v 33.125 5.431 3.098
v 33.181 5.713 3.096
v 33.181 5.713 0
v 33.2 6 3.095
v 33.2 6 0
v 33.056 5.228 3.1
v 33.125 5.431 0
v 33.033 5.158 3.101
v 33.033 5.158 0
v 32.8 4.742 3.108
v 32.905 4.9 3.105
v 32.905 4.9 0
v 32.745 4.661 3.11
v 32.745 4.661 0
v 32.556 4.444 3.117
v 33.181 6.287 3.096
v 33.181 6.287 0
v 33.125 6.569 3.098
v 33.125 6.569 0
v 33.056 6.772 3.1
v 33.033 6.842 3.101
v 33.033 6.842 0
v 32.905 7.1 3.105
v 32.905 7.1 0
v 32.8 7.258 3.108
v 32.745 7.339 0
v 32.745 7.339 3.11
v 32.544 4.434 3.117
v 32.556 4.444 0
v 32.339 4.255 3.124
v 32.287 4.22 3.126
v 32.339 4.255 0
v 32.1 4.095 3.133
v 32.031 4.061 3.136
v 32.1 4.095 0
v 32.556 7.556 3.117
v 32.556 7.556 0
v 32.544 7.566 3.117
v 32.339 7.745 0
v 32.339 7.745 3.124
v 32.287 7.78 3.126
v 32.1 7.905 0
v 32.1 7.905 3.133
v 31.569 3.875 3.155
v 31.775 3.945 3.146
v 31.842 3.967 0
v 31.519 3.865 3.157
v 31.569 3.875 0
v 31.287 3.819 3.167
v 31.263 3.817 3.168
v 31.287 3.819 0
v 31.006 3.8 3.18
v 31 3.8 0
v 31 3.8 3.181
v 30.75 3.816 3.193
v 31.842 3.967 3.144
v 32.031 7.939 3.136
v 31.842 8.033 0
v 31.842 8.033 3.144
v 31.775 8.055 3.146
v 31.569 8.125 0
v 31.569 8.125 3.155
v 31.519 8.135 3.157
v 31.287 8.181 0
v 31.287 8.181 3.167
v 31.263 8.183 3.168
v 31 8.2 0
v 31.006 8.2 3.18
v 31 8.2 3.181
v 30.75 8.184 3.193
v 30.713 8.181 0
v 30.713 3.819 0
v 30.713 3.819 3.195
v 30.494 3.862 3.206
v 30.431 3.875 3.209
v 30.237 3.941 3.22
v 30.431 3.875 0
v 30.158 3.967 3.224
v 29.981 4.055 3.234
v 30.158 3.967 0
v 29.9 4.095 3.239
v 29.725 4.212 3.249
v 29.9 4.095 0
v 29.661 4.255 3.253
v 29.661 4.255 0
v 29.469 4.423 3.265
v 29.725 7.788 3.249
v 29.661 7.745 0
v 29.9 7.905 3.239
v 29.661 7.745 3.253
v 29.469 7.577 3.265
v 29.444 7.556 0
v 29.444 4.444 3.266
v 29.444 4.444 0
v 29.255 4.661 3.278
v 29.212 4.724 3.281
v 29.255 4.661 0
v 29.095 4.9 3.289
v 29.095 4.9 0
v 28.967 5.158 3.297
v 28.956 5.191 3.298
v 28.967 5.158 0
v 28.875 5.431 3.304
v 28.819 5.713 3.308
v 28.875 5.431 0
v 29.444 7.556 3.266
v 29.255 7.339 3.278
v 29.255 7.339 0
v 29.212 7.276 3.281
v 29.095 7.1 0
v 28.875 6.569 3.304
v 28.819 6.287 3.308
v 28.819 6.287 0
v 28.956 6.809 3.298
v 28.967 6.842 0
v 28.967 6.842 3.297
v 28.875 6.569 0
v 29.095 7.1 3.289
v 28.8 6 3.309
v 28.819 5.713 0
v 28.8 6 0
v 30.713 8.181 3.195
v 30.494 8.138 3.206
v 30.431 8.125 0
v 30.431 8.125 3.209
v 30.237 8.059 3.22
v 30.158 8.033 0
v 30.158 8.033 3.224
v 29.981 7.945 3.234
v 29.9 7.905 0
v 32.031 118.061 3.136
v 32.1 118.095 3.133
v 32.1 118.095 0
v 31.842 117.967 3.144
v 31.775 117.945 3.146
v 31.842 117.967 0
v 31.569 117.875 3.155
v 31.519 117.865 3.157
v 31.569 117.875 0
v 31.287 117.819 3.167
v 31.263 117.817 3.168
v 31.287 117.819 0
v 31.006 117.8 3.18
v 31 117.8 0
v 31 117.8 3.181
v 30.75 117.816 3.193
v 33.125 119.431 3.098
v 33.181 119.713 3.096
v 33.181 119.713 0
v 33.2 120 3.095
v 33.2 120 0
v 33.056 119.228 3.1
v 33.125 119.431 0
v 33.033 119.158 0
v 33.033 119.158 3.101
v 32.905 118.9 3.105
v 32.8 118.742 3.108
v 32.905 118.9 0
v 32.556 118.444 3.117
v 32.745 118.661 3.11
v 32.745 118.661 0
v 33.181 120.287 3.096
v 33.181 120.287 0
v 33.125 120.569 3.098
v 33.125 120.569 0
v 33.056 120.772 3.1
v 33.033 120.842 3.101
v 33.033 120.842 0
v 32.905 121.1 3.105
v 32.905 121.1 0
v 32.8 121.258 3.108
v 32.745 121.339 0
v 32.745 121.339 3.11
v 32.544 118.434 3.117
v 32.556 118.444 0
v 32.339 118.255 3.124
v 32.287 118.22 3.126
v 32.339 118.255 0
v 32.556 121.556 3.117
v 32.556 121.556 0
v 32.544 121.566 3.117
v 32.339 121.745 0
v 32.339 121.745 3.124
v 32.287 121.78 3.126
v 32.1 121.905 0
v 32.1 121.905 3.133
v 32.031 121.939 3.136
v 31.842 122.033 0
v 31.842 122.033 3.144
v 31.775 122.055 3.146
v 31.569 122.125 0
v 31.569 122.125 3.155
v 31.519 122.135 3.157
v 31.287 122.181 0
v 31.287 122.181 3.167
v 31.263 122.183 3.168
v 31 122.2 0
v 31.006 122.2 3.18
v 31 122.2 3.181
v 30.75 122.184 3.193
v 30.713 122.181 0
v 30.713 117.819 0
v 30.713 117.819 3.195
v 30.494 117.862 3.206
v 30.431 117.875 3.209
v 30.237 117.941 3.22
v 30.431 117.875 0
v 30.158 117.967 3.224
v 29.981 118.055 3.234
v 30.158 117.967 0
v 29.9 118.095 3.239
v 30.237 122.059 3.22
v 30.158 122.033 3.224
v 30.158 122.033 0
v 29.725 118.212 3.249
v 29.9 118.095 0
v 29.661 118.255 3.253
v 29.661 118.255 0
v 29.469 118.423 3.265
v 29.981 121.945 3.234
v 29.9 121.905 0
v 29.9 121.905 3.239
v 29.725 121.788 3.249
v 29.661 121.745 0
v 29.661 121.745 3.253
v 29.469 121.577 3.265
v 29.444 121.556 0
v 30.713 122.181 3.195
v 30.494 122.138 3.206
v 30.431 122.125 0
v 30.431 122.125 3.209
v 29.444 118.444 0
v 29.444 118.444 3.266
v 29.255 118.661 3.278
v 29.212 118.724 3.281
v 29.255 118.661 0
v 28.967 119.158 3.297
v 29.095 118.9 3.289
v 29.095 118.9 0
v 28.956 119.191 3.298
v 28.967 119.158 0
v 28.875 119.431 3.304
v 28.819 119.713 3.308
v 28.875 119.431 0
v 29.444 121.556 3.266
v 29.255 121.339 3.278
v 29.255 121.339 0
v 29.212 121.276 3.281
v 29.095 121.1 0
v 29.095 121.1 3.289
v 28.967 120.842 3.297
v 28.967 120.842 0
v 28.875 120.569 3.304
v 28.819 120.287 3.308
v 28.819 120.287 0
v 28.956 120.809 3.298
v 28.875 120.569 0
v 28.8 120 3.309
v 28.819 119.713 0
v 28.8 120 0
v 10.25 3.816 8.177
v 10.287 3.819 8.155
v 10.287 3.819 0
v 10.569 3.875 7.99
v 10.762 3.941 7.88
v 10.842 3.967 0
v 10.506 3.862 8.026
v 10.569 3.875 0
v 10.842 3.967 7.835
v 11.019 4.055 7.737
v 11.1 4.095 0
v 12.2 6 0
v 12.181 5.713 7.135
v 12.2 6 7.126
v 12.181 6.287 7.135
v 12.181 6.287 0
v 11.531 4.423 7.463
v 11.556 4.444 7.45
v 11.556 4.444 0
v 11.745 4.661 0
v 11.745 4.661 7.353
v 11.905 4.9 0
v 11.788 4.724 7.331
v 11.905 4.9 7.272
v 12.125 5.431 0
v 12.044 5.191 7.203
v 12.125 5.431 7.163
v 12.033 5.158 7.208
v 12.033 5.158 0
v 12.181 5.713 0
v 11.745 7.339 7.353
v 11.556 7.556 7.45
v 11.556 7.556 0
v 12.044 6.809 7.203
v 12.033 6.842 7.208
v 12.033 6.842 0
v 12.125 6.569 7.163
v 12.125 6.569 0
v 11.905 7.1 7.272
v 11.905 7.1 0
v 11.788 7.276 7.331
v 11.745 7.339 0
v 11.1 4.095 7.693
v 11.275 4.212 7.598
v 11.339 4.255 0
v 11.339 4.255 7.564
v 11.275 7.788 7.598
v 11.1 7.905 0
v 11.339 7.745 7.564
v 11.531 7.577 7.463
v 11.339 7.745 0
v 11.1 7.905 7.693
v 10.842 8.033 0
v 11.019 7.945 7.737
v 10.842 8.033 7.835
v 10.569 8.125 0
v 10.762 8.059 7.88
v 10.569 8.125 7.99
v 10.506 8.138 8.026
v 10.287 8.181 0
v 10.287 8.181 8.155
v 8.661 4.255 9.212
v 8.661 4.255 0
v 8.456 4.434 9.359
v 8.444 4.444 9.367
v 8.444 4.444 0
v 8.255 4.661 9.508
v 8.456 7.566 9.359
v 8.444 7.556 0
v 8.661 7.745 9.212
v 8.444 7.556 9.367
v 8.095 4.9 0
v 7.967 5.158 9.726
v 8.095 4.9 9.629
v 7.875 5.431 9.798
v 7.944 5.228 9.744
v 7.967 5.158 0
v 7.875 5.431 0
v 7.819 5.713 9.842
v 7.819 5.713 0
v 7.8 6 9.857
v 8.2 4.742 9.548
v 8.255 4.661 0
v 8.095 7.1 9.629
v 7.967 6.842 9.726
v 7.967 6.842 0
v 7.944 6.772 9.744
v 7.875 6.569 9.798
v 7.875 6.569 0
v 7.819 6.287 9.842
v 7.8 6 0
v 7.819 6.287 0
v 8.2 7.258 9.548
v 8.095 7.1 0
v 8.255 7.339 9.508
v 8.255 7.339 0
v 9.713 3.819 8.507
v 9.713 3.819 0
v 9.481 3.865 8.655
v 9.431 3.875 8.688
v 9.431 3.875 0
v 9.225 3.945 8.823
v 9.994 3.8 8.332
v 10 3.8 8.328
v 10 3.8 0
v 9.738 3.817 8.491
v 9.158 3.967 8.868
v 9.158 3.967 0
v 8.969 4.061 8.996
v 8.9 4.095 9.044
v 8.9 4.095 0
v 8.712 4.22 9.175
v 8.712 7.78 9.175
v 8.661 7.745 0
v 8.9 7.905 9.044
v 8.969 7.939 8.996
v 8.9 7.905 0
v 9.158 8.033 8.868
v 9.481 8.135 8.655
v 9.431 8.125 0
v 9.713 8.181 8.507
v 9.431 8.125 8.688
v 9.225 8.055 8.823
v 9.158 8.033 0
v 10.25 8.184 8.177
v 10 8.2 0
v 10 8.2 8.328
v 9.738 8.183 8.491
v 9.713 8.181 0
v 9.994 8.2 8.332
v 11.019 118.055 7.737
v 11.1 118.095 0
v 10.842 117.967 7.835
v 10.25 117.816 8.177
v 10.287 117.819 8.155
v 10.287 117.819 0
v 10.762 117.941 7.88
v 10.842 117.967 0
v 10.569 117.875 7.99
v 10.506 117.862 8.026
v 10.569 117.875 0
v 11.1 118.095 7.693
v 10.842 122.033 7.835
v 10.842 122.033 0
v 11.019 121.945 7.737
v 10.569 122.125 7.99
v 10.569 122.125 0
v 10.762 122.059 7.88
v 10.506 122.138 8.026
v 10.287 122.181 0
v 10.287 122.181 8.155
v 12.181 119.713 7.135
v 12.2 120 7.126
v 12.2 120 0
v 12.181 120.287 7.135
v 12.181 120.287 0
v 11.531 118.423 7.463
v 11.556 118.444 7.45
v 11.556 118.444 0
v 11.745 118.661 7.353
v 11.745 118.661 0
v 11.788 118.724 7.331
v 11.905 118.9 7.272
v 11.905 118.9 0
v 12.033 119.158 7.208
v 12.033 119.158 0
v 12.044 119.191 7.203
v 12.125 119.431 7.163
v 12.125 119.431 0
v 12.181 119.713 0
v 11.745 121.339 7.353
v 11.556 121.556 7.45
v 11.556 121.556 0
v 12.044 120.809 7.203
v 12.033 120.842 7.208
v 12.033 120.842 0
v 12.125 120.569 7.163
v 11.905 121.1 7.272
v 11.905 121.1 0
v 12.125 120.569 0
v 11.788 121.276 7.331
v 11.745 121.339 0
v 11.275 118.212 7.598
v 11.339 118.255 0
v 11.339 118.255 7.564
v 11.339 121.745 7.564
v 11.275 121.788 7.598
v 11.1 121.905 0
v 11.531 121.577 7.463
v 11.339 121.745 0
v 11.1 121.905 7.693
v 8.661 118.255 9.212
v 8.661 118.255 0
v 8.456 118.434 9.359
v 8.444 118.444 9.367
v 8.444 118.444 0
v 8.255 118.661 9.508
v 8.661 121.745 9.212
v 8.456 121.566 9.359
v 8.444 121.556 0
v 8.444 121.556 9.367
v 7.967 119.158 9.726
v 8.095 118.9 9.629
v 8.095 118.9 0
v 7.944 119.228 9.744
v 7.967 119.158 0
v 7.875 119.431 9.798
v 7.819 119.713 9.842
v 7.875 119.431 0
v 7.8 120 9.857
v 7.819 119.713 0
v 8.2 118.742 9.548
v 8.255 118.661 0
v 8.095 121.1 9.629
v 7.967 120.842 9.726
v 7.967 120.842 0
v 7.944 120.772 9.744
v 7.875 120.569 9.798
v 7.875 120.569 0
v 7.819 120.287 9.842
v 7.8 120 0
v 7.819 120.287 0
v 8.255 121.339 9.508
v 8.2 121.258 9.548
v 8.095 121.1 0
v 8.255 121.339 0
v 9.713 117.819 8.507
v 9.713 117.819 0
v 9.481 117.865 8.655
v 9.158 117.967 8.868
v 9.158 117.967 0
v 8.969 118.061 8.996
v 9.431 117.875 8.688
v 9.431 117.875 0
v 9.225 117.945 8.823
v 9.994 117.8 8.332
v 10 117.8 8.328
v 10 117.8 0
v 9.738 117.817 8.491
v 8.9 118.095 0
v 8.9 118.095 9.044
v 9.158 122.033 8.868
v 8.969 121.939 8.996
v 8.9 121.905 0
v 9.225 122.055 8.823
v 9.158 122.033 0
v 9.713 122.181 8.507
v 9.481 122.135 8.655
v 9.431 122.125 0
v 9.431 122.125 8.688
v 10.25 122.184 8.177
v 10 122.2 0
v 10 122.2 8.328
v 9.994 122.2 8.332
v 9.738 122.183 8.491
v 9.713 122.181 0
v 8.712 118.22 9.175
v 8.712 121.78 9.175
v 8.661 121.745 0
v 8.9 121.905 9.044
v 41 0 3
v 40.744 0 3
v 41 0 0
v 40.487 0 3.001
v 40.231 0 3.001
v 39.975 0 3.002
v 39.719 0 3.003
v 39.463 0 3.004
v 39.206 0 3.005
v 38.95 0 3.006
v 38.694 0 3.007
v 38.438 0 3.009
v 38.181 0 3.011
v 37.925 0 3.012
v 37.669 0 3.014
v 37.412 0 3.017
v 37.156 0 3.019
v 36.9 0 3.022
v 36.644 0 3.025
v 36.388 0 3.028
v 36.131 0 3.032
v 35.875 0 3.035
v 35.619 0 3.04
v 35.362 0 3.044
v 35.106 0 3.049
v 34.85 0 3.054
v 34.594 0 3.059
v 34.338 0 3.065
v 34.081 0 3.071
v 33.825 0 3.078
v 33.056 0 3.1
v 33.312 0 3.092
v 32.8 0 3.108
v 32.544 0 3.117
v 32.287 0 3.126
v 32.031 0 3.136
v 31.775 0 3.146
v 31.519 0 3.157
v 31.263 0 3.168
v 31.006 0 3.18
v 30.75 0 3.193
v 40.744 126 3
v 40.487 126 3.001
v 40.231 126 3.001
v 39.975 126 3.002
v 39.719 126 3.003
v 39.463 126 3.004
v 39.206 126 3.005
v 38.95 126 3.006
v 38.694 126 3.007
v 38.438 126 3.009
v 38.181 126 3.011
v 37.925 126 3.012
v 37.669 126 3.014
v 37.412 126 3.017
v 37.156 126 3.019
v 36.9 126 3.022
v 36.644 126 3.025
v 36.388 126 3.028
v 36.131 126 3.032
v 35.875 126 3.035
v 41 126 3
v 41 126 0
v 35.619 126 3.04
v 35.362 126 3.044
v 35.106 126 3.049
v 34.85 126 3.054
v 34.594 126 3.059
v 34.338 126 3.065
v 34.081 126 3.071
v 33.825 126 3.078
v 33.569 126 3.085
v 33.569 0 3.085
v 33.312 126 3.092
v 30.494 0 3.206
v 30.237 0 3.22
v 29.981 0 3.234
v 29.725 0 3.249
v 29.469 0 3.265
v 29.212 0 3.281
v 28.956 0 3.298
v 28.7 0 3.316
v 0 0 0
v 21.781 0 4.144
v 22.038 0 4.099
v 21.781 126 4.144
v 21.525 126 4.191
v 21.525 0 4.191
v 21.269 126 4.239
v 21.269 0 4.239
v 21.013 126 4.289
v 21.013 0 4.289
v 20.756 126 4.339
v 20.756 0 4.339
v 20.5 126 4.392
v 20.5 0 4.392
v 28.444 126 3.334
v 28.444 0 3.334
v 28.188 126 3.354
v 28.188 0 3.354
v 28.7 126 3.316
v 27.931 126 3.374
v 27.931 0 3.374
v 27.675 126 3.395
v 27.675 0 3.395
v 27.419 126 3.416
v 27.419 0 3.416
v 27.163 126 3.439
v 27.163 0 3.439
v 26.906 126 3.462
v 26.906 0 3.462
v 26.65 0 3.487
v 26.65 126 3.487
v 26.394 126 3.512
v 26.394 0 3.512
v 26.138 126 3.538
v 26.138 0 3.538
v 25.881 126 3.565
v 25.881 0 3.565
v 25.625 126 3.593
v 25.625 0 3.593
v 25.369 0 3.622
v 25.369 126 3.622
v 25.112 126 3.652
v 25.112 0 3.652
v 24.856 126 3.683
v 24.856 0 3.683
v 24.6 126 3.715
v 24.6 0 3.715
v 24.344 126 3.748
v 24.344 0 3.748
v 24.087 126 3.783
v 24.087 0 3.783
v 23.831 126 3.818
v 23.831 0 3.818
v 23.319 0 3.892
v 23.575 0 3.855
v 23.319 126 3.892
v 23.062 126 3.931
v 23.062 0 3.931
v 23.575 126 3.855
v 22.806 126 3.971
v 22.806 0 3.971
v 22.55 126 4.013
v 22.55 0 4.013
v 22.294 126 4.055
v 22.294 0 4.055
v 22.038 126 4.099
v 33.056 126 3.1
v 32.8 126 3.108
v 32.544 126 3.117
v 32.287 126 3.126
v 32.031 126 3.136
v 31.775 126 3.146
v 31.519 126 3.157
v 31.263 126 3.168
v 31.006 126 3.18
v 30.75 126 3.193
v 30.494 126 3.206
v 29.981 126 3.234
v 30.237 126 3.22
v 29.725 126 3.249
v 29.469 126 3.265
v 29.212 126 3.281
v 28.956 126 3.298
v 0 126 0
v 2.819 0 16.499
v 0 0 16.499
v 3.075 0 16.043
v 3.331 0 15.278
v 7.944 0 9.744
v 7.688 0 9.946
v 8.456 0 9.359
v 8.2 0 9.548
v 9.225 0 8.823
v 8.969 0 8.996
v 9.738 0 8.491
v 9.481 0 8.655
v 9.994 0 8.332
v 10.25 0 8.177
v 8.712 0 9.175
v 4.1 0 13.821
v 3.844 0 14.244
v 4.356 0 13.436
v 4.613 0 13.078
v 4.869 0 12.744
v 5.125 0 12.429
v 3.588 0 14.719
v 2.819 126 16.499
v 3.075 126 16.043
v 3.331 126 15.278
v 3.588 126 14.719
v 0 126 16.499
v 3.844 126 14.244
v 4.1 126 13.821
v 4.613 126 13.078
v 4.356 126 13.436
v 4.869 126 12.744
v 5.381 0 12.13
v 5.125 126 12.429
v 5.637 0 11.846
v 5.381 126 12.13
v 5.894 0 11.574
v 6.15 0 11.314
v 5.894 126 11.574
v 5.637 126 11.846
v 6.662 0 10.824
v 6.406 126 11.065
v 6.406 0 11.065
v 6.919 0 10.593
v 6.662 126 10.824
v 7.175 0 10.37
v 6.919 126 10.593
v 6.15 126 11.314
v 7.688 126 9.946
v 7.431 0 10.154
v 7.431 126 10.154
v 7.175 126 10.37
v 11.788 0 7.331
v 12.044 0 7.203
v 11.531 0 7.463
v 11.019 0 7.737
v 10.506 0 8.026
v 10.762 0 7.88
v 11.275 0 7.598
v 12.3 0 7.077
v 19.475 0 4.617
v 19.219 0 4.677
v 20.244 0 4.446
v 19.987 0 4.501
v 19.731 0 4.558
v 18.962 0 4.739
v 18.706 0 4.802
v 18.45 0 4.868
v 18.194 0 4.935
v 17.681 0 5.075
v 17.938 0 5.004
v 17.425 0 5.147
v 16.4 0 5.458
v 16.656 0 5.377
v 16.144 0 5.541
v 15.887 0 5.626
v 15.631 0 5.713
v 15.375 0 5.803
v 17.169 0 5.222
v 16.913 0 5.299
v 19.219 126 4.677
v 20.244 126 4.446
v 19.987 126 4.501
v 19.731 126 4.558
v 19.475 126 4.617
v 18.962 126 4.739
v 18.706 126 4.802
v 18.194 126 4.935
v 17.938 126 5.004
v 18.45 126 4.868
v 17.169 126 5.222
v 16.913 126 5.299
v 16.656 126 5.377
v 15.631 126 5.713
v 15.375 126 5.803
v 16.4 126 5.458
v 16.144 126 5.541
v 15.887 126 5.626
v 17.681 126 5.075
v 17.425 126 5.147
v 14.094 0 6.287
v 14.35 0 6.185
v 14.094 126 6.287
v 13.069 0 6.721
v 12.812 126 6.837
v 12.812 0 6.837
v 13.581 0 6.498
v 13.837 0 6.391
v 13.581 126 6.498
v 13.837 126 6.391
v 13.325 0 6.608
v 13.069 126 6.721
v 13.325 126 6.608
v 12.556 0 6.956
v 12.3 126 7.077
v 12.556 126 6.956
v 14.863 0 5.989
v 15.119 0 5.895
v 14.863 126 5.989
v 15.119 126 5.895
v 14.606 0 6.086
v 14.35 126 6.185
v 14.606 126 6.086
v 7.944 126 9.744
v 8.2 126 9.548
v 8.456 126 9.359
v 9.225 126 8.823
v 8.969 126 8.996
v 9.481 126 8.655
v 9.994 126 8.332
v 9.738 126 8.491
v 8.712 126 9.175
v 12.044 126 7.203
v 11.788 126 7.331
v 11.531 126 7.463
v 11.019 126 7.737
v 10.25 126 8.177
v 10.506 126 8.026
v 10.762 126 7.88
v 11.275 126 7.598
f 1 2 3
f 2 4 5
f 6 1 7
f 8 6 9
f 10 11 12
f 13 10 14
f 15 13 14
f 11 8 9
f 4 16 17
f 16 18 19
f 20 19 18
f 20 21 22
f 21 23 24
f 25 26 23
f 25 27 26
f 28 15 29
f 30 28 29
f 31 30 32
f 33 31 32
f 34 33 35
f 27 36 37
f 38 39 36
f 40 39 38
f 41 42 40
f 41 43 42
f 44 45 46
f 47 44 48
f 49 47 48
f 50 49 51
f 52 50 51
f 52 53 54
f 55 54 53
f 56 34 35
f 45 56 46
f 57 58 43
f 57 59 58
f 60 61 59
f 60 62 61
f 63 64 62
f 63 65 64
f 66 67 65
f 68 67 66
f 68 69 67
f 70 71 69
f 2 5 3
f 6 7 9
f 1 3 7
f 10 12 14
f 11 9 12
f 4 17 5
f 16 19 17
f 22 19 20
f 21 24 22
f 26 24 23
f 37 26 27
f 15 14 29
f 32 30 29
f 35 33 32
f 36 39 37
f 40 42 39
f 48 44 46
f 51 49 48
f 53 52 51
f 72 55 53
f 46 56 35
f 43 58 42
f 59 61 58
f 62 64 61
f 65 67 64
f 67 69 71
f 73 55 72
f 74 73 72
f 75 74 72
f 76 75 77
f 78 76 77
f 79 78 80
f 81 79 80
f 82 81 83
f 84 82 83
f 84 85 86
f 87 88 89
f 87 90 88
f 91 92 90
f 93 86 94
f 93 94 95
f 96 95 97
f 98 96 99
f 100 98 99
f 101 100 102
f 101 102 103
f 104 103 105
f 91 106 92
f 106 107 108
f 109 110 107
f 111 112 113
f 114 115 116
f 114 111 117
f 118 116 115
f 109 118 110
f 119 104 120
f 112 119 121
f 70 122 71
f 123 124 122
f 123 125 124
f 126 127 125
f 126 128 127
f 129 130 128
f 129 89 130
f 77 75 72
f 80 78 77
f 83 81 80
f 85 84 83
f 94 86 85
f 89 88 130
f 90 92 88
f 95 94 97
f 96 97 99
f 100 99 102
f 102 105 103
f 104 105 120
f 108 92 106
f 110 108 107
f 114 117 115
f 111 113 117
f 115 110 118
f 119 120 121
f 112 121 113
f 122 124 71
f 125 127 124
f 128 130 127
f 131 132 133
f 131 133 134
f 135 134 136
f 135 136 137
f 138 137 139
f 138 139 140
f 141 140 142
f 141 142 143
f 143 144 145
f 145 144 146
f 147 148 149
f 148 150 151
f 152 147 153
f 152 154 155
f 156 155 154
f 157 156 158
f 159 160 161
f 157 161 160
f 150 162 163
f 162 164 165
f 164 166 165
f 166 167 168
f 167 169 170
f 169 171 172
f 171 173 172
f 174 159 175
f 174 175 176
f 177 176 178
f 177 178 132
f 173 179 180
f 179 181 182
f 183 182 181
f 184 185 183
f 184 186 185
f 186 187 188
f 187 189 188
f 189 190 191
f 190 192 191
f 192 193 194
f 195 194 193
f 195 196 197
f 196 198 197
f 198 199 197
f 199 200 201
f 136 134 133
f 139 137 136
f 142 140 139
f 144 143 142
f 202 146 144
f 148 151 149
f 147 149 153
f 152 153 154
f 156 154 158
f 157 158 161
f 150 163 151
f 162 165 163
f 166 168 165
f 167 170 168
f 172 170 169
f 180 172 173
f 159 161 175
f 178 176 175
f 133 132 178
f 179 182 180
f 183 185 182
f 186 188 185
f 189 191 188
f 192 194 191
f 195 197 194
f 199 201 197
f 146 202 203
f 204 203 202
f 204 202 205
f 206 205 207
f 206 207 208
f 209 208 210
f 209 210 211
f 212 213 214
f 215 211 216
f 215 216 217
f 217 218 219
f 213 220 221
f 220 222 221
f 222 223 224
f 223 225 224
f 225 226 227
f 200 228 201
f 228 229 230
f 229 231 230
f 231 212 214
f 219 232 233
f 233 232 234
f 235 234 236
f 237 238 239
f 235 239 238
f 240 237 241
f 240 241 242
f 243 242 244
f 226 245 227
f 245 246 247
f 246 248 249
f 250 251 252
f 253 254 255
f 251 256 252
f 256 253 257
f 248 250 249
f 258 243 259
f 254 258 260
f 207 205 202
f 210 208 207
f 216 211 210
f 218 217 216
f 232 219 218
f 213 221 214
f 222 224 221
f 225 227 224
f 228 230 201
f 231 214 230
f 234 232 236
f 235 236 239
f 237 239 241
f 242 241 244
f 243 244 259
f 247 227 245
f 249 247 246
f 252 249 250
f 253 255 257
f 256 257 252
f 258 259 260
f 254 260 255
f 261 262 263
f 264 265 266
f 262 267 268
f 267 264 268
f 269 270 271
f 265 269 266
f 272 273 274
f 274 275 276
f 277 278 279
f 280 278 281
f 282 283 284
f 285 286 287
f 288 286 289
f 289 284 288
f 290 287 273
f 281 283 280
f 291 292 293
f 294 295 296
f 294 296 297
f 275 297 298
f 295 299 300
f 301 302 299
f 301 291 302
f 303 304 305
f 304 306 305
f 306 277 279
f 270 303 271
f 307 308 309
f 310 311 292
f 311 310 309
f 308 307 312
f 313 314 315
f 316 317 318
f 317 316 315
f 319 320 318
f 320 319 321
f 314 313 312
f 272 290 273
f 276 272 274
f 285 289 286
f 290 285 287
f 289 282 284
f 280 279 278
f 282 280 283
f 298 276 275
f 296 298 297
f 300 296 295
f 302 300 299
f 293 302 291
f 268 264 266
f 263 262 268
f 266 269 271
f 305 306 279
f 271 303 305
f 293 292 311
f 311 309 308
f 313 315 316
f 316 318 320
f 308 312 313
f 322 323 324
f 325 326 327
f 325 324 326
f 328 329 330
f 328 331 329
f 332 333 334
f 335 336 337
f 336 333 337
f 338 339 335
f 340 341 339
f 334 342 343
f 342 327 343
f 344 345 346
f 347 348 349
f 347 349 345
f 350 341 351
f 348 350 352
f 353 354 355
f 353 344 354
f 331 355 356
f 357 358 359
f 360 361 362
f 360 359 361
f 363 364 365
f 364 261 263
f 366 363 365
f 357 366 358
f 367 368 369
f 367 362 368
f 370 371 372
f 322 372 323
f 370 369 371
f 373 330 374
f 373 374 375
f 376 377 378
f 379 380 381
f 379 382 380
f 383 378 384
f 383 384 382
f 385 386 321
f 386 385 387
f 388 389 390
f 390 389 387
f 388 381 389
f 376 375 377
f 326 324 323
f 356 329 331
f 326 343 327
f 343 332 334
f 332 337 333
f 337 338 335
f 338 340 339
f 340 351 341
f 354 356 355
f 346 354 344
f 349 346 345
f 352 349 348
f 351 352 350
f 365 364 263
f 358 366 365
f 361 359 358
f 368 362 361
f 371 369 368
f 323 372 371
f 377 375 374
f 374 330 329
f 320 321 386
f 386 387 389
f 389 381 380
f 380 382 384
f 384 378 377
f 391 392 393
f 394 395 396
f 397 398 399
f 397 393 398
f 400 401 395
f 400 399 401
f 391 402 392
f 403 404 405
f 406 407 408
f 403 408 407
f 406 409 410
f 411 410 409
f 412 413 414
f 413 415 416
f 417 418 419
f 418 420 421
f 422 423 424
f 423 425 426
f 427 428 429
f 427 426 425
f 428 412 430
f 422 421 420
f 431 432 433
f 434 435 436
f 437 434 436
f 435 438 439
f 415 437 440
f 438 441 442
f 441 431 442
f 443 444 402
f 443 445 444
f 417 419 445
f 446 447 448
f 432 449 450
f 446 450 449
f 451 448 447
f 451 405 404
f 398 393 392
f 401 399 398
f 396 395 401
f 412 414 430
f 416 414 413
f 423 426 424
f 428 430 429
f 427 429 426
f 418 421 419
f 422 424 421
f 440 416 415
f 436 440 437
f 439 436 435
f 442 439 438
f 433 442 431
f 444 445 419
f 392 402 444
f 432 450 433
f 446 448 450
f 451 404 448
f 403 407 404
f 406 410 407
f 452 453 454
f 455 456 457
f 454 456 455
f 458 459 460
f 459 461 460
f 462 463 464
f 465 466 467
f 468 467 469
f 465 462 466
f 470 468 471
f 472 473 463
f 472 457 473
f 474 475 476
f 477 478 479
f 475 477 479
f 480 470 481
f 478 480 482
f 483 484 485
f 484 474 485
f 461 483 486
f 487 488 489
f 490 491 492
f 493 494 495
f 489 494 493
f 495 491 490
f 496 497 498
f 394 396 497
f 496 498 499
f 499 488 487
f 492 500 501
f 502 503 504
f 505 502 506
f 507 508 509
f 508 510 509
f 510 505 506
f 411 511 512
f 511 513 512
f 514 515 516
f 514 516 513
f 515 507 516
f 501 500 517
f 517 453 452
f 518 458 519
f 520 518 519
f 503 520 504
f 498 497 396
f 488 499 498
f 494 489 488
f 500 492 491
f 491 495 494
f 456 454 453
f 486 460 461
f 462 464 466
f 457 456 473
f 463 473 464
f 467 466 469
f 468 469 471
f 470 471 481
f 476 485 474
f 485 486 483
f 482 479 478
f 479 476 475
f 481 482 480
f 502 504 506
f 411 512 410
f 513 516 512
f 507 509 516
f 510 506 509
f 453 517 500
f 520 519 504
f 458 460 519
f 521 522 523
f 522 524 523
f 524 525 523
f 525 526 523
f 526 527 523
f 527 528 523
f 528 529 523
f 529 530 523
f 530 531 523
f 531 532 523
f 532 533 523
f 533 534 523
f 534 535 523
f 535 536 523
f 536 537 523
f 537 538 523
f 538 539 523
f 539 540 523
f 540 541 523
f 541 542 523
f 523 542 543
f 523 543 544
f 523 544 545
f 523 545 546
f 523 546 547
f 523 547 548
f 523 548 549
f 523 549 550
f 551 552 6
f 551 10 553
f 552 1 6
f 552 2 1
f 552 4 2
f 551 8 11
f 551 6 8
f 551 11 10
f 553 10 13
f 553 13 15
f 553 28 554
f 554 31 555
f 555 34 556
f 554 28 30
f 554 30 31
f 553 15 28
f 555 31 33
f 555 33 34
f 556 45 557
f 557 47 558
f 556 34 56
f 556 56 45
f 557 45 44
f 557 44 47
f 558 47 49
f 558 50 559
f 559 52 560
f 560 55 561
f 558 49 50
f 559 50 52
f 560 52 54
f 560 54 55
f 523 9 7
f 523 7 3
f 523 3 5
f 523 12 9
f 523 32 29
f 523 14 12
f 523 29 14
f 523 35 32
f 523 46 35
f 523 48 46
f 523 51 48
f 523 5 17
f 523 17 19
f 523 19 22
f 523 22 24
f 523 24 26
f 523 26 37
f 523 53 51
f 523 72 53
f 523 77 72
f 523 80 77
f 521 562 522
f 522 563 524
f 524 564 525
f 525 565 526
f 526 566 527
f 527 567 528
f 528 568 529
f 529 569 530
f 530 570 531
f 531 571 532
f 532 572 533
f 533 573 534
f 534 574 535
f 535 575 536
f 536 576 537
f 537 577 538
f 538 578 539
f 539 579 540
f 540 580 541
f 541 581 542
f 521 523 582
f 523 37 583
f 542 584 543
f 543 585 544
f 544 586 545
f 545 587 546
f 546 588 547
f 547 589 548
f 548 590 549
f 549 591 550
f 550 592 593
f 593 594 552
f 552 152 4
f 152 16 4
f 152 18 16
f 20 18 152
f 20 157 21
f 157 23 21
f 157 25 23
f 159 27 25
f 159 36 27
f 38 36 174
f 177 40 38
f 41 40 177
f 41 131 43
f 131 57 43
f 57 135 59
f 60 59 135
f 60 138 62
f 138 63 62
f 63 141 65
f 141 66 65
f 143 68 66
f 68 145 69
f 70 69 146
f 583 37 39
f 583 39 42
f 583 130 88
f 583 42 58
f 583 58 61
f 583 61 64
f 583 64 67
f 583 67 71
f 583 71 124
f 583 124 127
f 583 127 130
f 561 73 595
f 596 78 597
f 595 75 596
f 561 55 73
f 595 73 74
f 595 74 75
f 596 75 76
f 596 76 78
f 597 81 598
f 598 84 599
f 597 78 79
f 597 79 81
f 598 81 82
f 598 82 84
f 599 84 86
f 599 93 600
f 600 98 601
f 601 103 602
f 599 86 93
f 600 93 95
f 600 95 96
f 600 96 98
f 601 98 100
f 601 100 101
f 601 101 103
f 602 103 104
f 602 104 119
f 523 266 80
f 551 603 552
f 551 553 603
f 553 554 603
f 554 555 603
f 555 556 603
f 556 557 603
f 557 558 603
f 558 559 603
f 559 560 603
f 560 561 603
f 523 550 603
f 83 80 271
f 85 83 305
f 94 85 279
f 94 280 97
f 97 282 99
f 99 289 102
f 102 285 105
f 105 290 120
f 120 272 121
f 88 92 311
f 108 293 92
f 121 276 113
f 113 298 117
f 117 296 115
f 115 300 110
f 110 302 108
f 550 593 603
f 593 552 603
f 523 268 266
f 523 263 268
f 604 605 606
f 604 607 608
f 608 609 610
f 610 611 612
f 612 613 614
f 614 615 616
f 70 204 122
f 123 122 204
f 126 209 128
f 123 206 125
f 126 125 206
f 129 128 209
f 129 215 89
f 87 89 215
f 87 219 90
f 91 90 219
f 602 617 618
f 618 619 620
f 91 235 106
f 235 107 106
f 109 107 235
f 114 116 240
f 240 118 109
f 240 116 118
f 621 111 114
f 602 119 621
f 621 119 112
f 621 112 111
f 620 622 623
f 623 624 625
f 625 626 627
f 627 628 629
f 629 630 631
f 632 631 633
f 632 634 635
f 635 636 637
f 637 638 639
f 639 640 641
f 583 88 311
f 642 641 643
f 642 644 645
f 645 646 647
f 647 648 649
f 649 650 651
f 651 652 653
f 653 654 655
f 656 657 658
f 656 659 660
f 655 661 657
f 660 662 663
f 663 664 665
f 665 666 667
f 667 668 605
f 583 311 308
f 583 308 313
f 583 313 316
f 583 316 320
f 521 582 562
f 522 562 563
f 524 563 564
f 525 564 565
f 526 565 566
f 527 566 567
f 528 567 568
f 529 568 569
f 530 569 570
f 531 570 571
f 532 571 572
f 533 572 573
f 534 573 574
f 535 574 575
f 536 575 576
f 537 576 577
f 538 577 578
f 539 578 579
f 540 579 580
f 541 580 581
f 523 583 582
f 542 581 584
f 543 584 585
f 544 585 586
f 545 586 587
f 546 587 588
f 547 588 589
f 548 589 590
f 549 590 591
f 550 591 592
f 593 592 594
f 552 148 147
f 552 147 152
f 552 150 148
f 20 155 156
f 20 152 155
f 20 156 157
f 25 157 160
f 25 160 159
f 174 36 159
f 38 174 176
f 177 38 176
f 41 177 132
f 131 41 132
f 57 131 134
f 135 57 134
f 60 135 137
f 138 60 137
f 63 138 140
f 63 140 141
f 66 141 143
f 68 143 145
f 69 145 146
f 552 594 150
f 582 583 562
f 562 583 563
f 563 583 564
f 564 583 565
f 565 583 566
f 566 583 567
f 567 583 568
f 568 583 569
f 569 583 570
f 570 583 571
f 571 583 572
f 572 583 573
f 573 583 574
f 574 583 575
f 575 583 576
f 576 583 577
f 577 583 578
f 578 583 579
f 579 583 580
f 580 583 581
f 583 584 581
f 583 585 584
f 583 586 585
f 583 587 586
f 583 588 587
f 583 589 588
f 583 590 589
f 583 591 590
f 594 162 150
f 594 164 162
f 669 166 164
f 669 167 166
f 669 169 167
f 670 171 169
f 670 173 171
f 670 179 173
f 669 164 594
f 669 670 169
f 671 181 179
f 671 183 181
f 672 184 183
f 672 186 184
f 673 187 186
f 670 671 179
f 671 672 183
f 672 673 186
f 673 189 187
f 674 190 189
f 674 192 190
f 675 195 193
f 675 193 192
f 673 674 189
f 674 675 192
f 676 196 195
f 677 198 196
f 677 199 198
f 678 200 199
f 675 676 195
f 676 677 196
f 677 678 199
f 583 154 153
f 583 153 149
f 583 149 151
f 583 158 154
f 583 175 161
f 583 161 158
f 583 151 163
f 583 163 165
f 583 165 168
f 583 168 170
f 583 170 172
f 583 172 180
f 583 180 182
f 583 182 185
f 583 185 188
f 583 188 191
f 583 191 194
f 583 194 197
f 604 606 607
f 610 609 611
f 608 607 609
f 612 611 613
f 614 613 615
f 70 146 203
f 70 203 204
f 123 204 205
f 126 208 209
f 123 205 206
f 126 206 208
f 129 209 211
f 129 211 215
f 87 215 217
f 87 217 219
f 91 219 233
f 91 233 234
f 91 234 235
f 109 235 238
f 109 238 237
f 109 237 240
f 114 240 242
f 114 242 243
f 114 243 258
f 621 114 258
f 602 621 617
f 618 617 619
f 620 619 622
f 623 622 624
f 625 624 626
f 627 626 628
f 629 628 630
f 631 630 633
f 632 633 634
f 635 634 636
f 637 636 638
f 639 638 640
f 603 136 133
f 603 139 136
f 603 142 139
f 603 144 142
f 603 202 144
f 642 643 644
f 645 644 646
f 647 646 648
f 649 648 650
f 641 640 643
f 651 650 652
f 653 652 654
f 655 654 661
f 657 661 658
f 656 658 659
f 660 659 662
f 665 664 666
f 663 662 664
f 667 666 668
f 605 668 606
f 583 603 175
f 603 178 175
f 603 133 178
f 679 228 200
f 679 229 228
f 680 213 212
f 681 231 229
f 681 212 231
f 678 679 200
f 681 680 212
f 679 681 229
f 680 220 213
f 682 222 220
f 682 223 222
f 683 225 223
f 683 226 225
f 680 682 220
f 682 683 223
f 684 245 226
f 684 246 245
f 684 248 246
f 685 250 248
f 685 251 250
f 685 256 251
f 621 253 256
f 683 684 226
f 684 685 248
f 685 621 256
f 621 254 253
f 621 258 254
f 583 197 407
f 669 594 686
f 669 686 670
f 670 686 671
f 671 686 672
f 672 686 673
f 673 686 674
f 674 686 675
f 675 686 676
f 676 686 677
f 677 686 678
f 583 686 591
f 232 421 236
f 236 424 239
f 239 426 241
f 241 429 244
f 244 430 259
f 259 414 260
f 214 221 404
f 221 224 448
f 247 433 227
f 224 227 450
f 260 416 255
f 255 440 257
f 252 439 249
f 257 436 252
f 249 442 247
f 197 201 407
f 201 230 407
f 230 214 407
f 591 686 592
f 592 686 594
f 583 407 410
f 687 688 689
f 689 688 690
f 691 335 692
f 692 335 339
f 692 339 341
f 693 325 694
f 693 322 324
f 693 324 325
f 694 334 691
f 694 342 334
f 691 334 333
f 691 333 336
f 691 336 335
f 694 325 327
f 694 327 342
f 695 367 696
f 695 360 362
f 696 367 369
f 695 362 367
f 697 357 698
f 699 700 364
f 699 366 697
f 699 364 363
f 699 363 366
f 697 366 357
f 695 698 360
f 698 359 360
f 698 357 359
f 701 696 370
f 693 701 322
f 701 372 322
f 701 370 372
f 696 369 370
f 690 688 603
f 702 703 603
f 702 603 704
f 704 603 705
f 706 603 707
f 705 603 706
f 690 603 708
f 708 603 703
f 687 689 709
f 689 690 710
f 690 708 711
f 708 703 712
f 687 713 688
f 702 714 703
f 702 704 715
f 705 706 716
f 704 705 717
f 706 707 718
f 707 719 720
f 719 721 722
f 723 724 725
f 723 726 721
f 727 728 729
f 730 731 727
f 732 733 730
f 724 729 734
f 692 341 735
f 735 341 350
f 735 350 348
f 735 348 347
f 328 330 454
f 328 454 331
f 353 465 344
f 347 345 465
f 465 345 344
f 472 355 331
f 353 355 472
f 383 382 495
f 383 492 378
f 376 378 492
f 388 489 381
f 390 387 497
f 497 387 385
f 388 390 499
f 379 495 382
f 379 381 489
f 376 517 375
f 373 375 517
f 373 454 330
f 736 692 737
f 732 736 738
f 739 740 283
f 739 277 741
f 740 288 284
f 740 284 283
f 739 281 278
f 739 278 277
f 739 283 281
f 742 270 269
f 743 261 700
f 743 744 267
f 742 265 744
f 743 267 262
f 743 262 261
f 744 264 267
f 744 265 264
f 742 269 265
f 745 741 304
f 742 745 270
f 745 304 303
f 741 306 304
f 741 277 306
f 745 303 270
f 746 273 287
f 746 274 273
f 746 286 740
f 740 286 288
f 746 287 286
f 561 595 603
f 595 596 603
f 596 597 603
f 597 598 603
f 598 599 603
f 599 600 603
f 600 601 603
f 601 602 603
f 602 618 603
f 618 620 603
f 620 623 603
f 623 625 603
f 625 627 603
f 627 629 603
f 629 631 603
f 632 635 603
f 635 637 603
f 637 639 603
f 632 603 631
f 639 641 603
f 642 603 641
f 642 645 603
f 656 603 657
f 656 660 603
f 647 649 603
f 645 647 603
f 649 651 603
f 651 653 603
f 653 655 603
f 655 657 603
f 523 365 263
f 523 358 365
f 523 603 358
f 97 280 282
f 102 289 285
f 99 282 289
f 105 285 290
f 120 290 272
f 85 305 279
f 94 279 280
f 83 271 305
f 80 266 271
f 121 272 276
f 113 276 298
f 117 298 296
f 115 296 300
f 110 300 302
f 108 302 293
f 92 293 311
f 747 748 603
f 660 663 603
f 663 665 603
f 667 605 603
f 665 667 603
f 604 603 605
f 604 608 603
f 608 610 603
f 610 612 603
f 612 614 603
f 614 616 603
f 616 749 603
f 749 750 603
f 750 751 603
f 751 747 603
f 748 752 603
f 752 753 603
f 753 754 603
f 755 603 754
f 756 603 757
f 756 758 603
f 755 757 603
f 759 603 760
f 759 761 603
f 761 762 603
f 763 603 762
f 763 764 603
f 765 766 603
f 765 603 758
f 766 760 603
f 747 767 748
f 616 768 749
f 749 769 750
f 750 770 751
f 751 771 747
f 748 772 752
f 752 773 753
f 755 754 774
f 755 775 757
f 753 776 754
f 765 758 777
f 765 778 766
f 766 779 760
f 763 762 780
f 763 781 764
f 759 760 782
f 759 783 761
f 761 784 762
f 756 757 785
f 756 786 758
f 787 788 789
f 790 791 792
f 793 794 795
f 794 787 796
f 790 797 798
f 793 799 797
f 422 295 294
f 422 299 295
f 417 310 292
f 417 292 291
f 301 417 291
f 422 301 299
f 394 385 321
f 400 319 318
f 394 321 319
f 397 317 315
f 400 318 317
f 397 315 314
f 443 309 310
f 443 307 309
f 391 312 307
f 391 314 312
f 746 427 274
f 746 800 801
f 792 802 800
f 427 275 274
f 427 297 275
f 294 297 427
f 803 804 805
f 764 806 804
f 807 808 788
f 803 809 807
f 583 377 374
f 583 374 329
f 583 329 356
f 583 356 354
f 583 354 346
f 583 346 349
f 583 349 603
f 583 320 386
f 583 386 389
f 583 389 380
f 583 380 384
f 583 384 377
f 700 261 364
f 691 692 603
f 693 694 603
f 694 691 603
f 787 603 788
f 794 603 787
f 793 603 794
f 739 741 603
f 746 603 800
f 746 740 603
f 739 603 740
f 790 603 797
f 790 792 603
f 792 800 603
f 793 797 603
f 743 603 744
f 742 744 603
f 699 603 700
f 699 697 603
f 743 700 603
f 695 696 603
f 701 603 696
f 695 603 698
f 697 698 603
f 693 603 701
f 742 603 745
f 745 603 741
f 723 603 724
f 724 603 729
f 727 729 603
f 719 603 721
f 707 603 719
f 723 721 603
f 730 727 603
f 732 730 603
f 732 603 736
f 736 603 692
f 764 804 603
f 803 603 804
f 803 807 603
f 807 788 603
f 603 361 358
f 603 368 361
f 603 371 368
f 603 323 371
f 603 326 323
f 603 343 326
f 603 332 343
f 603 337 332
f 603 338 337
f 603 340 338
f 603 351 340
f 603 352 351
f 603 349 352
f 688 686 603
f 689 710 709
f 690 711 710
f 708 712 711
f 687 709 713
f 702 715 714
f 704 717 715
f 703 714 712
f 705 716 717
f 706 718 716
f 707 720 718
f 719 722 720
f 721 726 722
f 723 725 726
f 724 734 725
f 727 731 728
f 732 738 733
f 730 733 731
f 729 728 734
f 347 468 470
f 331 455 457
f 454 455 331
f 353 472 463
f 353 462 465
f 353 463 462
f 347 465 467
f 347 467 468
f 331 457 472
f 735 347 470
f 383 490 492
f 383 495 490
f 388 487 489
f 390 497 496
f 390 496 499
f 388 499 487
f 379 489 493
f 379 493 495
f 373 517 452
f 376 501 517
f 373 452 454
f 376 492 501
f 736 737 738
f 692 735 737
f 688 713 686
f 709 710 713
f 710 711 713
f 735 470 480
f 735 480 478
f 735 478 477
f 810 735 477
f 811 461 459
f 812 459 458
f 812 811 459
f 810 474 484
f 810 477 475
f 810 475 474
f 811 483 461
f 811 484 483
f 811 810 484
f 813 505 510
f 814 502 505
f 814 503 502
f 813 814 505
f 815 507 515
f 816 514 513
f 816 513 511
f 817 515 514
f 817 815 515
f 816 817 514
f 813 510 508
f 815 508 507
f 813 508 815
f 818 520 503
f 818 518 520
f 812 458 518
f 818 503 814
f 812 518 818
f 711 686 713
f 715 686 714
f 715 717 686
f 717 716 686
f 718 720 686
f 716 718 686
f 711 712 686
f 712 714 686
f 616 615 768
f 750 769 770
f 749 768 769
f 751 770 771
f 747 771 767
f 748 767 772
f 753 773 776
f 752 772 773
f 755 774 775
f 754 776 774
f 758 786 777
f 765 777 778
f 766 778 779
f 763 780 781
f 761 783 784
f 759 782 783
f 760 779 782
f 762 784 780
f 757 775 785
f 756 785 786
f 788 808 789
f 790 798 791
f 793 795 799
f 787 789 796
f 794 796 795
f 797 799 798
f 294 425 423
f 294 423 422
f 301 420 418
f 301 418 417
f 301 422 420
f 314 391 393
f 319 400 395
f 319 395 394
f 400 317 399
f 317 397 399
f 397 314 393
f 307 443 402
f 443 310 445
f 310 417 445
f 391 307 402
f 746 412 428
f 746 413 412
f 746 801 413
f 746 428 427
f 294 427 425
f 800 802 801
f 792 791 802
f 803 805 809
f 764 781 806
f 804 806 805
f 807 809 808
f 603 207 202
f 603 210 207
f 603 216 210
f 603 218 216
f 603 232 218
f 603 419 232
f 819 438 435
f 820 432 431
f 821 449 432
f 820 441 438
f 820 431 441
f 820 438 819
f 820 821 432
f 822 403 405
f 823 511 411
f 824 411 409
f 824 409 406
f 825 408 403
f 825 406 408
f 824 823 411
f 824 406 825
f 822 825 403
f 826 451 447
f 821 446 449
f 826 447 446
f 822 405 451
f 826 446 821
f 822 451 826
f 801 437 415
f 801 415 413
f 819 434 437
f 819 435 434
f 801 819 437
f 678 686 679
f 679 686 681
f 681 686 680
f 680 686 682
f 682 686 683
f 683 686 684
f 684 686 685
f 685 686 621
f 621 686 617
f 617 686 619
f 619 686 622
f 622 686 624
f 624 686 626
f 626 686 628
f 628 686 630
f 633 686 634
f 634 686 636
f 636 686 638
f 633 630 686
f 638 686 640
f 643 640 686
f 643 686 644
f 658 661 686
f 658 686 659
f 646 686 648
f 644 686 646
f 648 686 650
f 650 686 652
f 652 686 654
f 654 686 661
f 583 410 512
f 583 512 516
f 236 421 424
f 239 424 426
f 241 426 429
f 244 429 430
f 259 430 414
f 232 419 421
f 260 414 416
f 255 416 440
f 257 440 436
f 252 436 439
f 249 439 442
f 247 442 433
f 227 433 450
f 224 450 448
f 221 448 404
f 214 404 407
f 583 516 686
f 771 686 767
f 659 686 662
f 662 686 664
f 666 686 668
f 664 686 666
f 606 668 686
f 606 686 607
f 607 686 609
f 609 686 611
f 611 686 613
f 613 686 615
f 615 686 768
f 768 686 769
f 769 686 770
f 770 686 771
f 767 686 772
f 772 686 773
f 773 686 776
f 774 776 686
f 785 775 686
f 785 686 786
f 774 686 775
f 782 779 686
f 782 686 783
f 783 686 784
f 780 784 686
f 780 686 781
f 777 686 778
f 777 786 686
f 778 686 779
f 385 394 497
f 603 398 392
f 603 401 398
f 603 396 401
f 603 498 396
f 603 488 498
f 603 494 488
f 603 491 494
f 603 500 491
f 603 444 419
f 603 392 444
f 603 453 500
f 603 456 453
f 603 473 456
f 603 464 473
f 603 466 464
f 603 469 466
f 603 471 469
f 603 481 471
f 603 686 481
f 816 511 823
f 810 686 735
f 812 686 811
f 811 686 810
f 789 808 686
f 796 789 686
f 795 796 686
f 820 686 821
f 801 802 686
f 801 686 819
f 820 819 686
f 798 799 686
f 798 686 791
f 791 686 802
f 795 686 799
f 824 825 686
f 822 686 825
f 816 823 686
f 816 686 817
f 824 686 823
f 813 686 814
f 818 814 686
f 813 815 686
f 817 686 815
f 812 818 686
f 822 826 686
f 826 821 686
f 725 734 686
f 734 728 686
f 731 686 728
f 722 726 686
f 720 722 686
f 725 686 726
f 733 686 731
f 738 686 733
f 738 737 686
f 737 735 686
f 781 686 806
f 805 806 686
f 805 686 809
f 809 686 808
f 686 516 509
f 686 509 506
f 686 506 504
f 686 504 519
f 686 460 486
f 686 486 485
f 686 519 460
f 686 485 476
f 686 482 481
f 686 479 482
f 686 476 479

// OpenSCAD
// Note 1.

// COUPON-COMPONENTS: fit=coupon
// COUPON-PLATE: coupon

/* [Casing] */
/* [Assembly display] */
// Note 2.
view = "default"; // [default, together, exploded]

casing_w      = 41;    // Note 3.
casing_max_h  = 13.5;  // Note 4.
casing_a      = 3.4;   // Note 5.
casing_b      = 1.5;   // Note 6.

/* [Closer] */
closer_w      = 32.5;  // Note 7.
closer_l      = 126;   // Note 8.
hole_d        = 4;     // Note 9.
hole_len_gap  = 110;   // Note 10.
hole_end      = (closer_l - hole_len_gap - hole_d) / 2; // Note 11.
hole_gap      = 17;    // Note 12.
hole_side     = (closer_w - hole_gap - hole_d) / 2; // Note 13.

/* [Plate] */
plate_w       = casing_w; // Note 14.
casing_x0     = -3;    // Note 15.
closer_x0     = (casing_w - closer_w) / 2; // Note 16.
plate_min_t   = 3;     // Note 17.
plate_hole_d  = 4.4;   // Note 18.

/* [Output] */
show = "part";         // [part, coupon]
coupon_label = "";     // Note 19.
label_size = 4;        // Note 20.
label_depth = 0.6;     // Note 21.
coupon_l = 10;         // Note 22.
flip = true;           // Note 23.

$fn = 48;
eps = 0.01;
profile_steps = 160;   // Note 24.

function face_h(x) = casing_max_h * pow(max(0, 1 - pow(x / casing_w, casing_a)), 1 / casing_b);

// Note 25.
function casing_h(px) = let (x = px - casing_x0)
    x <= 0        ? casing_max_h :
    x <  casing_w ? face_h(x) :
    0;

plate_x0 = 0;
plate_x1 = plate_w;
top_z = max([for (i = [0 : profile_steps]) casing_h(plate_w * i / profile_steps)]) + plate_min_t;

// Note 26.
module plate_section() {
    underside = [for (i = [profile_steps : -1 : 0])
        let (x = plate_w * i / profile_steps) [x, casing_h(x)]];
    polygon(concat([[plate_x0, top_z], [plate_x1, top_z]], underside));
}

module plate(len = closer_l) {
    difference() {
        rotate([90, 0, 0]) translate([0, 0, -len])
            linear_extrude(len, convexity = 4) plate_section();
        for (x = [closer_x0 + hole_side, closer_x0 + closer_w - hole_side],
             y = len < closer_l ? [len / 2] : [hole_end, closer_l - hole_end])
            translate([x, y, -eps]) cylinder(d = plate_hole_d, h = top_z + 2 * eps);
        if (len < closer_l && coupon_label != "")
            translate([plate_w / 2, len / 2, top_z - label_depth])
                linear_extrude(label_depth + eps)
                    text(coupon_label, size = label_size, font = "Liberation Sans:style=Bold",
                         halign = "center", valign = "center");
    }
}

len = show == "coupon" ? coupon_l : closer_l;

// Note 27.

module feral_default_output_5b5cabc73816() {
if (flip) translate([0, 0, top_z]) rotate([0, 180, 0]) translate([-plate_x1, 0, 0]) plate(len);
else plate(len);
}

module feral_assembly_view_5b5cabc73816(explode=false) {
feral_default_output_5b5cabc73816();
}

assert(view == "default" || view == "together" || view == "exploded", "Unknown assembly display");
if(view == "default") feral_default_output_5b5cabc73816();
else feral_assembly_view_5b5cabc73816(view == "exploded");

// Notes

// Note 1. door-closer-casing-plate.scad
//
// A saddle that sits on a sloped, bullnosed door casing and gives a
// spring-loaded door closer a flat face to screw to. The closer's base is
// 32.5 x 126 with a 4 mm hole in each corner (Ziad, 2026-09-25). The
// holes' inside edges are 17 apart across the width and 110 along it,
// miked, which replaces the 3.5 from the sides and 4 from the ends first
// given. Its screws go
// through the closer, through this plate, and into the casing, so the
// plate carries matching holes and
// nothing else — screws need to be longer by the plate's thickness.
//
// THE CASING (Ziad, 2026-09-25): 41 wide, 13.5 proud of the wall at its
// thickest, the outside edge. It slopes gradually in for about 75 % of the
// width and then rounds down to nothing at the door-side edge.
//
// casing_a and casing_b were fitted to a photo of coupon 9 on the casing
// (2026-09-25), its air gap scaled against the coupon's own width — up to
// 2.8 mm near the round, none past 21 mm from the door-side edge — and
// coupon 10, cut from that fit, sat perfectly (Ziad, 2026-09-25).
// ⚠️ ASSUMED: the hole offsets are to hole centres, not hole edges.
// THE PLATE SPANS THE WHOLE CASING, so the underside wraps the bullnose as
// well as the slope (Ziad, 2026-09-25: the first draft stopped at the
// closer's 32.5 and caught only the start of the round). Where the casing
// rounds down to nothing the plate comes down to the wall.
// ⚠️ ASSUMED: the closer is centred across the casing (closer_x0) and its
// face stands parallel to the wall.
//
// Axes, installed: X across the casing, 0 at the outside edge and rising
// toward the door; Y along the casing; Z out of the wall. The underside is
// the casing's profile; the top is flat, plate_min_t above the casing's
// highest point under the plate. flip turns it top-down for printing, so
// the saddle faces up and nothing overhangs.
//
// THE COUPON is a coupon_l slice of the plate, with one pair of holes
// centred along its length: enough to press onto the casing and see whether the underside
// meets the slope and the round, and whether the holes land across it.

// Note 2. default preserves the original part, coupon and print selectors.

// Note 3. mm, full width of the casing face

// Note 4. mm, thickness at the outside edge

// Note 5. exponent across the width: higher keeps the face flatter for longer

// Note 6. exponent through the thickness: above 1 the face ends vertical at the door-side edge

// Note 7. mm, base width (across the casing)

// Note 8. mm, base length (along the casing)

// Note 9. mm, device hole diameter

// Note 10. mm, clear gap between the device holes' inside edges along the length, miked (Ziad, 2026-09-25)

// Note 11. mm, hole centre from each end

// Note 12. mm, clear gap between the device holes' inside edges across the width, miked (Ziad, 2026-09-25)

// Note 13. mm, hole centre from each side

// Note 14. mm, plate width across the casing, from its outside edge

// Note 15. mm, casing's outside edge from the plate's; negative leaves a ledge on the wall past the door-side edge

// Note 16. mm, closer's outside edge from the casing's ⚠️ assumed

// Note 17. mm, thickness at the thinnest point

// Note 18. mm, through-hole: device hole plus clearance

// Note 19. text sunk into the coupon's top face, to tell coupons apart

// Note 20. mm, label text height

// Note 21. mm, label deboss depth

// Note 22. mm, length of the coupon slice along the casing

// Note 23. print orientation: top face on the bed

// Note 24. segments across the plate's underside
// The casing face is one smooth curve, h = max_h * (1 - (x/w)^a)^(1/b):
// flat at the outside edge and steepening all the way to vertical at the
// door-side edge, with no straight run and no handover between a slope and
// a round (Ziad, 2026-09-25: "curved the whole way ever so slightly";
// then "smooth that curve out a bit", after a two-curve blend left a
// visible transition).

// Note 25. Casing thickness at x, 0 beyond the door-side edge.

// Note 26. Cross-section in XZ, extruded along Y.

// Note 27. Assembly display changes placement only; the original output remains the default.
// Single printed piece: both display modes show the same intact part.
